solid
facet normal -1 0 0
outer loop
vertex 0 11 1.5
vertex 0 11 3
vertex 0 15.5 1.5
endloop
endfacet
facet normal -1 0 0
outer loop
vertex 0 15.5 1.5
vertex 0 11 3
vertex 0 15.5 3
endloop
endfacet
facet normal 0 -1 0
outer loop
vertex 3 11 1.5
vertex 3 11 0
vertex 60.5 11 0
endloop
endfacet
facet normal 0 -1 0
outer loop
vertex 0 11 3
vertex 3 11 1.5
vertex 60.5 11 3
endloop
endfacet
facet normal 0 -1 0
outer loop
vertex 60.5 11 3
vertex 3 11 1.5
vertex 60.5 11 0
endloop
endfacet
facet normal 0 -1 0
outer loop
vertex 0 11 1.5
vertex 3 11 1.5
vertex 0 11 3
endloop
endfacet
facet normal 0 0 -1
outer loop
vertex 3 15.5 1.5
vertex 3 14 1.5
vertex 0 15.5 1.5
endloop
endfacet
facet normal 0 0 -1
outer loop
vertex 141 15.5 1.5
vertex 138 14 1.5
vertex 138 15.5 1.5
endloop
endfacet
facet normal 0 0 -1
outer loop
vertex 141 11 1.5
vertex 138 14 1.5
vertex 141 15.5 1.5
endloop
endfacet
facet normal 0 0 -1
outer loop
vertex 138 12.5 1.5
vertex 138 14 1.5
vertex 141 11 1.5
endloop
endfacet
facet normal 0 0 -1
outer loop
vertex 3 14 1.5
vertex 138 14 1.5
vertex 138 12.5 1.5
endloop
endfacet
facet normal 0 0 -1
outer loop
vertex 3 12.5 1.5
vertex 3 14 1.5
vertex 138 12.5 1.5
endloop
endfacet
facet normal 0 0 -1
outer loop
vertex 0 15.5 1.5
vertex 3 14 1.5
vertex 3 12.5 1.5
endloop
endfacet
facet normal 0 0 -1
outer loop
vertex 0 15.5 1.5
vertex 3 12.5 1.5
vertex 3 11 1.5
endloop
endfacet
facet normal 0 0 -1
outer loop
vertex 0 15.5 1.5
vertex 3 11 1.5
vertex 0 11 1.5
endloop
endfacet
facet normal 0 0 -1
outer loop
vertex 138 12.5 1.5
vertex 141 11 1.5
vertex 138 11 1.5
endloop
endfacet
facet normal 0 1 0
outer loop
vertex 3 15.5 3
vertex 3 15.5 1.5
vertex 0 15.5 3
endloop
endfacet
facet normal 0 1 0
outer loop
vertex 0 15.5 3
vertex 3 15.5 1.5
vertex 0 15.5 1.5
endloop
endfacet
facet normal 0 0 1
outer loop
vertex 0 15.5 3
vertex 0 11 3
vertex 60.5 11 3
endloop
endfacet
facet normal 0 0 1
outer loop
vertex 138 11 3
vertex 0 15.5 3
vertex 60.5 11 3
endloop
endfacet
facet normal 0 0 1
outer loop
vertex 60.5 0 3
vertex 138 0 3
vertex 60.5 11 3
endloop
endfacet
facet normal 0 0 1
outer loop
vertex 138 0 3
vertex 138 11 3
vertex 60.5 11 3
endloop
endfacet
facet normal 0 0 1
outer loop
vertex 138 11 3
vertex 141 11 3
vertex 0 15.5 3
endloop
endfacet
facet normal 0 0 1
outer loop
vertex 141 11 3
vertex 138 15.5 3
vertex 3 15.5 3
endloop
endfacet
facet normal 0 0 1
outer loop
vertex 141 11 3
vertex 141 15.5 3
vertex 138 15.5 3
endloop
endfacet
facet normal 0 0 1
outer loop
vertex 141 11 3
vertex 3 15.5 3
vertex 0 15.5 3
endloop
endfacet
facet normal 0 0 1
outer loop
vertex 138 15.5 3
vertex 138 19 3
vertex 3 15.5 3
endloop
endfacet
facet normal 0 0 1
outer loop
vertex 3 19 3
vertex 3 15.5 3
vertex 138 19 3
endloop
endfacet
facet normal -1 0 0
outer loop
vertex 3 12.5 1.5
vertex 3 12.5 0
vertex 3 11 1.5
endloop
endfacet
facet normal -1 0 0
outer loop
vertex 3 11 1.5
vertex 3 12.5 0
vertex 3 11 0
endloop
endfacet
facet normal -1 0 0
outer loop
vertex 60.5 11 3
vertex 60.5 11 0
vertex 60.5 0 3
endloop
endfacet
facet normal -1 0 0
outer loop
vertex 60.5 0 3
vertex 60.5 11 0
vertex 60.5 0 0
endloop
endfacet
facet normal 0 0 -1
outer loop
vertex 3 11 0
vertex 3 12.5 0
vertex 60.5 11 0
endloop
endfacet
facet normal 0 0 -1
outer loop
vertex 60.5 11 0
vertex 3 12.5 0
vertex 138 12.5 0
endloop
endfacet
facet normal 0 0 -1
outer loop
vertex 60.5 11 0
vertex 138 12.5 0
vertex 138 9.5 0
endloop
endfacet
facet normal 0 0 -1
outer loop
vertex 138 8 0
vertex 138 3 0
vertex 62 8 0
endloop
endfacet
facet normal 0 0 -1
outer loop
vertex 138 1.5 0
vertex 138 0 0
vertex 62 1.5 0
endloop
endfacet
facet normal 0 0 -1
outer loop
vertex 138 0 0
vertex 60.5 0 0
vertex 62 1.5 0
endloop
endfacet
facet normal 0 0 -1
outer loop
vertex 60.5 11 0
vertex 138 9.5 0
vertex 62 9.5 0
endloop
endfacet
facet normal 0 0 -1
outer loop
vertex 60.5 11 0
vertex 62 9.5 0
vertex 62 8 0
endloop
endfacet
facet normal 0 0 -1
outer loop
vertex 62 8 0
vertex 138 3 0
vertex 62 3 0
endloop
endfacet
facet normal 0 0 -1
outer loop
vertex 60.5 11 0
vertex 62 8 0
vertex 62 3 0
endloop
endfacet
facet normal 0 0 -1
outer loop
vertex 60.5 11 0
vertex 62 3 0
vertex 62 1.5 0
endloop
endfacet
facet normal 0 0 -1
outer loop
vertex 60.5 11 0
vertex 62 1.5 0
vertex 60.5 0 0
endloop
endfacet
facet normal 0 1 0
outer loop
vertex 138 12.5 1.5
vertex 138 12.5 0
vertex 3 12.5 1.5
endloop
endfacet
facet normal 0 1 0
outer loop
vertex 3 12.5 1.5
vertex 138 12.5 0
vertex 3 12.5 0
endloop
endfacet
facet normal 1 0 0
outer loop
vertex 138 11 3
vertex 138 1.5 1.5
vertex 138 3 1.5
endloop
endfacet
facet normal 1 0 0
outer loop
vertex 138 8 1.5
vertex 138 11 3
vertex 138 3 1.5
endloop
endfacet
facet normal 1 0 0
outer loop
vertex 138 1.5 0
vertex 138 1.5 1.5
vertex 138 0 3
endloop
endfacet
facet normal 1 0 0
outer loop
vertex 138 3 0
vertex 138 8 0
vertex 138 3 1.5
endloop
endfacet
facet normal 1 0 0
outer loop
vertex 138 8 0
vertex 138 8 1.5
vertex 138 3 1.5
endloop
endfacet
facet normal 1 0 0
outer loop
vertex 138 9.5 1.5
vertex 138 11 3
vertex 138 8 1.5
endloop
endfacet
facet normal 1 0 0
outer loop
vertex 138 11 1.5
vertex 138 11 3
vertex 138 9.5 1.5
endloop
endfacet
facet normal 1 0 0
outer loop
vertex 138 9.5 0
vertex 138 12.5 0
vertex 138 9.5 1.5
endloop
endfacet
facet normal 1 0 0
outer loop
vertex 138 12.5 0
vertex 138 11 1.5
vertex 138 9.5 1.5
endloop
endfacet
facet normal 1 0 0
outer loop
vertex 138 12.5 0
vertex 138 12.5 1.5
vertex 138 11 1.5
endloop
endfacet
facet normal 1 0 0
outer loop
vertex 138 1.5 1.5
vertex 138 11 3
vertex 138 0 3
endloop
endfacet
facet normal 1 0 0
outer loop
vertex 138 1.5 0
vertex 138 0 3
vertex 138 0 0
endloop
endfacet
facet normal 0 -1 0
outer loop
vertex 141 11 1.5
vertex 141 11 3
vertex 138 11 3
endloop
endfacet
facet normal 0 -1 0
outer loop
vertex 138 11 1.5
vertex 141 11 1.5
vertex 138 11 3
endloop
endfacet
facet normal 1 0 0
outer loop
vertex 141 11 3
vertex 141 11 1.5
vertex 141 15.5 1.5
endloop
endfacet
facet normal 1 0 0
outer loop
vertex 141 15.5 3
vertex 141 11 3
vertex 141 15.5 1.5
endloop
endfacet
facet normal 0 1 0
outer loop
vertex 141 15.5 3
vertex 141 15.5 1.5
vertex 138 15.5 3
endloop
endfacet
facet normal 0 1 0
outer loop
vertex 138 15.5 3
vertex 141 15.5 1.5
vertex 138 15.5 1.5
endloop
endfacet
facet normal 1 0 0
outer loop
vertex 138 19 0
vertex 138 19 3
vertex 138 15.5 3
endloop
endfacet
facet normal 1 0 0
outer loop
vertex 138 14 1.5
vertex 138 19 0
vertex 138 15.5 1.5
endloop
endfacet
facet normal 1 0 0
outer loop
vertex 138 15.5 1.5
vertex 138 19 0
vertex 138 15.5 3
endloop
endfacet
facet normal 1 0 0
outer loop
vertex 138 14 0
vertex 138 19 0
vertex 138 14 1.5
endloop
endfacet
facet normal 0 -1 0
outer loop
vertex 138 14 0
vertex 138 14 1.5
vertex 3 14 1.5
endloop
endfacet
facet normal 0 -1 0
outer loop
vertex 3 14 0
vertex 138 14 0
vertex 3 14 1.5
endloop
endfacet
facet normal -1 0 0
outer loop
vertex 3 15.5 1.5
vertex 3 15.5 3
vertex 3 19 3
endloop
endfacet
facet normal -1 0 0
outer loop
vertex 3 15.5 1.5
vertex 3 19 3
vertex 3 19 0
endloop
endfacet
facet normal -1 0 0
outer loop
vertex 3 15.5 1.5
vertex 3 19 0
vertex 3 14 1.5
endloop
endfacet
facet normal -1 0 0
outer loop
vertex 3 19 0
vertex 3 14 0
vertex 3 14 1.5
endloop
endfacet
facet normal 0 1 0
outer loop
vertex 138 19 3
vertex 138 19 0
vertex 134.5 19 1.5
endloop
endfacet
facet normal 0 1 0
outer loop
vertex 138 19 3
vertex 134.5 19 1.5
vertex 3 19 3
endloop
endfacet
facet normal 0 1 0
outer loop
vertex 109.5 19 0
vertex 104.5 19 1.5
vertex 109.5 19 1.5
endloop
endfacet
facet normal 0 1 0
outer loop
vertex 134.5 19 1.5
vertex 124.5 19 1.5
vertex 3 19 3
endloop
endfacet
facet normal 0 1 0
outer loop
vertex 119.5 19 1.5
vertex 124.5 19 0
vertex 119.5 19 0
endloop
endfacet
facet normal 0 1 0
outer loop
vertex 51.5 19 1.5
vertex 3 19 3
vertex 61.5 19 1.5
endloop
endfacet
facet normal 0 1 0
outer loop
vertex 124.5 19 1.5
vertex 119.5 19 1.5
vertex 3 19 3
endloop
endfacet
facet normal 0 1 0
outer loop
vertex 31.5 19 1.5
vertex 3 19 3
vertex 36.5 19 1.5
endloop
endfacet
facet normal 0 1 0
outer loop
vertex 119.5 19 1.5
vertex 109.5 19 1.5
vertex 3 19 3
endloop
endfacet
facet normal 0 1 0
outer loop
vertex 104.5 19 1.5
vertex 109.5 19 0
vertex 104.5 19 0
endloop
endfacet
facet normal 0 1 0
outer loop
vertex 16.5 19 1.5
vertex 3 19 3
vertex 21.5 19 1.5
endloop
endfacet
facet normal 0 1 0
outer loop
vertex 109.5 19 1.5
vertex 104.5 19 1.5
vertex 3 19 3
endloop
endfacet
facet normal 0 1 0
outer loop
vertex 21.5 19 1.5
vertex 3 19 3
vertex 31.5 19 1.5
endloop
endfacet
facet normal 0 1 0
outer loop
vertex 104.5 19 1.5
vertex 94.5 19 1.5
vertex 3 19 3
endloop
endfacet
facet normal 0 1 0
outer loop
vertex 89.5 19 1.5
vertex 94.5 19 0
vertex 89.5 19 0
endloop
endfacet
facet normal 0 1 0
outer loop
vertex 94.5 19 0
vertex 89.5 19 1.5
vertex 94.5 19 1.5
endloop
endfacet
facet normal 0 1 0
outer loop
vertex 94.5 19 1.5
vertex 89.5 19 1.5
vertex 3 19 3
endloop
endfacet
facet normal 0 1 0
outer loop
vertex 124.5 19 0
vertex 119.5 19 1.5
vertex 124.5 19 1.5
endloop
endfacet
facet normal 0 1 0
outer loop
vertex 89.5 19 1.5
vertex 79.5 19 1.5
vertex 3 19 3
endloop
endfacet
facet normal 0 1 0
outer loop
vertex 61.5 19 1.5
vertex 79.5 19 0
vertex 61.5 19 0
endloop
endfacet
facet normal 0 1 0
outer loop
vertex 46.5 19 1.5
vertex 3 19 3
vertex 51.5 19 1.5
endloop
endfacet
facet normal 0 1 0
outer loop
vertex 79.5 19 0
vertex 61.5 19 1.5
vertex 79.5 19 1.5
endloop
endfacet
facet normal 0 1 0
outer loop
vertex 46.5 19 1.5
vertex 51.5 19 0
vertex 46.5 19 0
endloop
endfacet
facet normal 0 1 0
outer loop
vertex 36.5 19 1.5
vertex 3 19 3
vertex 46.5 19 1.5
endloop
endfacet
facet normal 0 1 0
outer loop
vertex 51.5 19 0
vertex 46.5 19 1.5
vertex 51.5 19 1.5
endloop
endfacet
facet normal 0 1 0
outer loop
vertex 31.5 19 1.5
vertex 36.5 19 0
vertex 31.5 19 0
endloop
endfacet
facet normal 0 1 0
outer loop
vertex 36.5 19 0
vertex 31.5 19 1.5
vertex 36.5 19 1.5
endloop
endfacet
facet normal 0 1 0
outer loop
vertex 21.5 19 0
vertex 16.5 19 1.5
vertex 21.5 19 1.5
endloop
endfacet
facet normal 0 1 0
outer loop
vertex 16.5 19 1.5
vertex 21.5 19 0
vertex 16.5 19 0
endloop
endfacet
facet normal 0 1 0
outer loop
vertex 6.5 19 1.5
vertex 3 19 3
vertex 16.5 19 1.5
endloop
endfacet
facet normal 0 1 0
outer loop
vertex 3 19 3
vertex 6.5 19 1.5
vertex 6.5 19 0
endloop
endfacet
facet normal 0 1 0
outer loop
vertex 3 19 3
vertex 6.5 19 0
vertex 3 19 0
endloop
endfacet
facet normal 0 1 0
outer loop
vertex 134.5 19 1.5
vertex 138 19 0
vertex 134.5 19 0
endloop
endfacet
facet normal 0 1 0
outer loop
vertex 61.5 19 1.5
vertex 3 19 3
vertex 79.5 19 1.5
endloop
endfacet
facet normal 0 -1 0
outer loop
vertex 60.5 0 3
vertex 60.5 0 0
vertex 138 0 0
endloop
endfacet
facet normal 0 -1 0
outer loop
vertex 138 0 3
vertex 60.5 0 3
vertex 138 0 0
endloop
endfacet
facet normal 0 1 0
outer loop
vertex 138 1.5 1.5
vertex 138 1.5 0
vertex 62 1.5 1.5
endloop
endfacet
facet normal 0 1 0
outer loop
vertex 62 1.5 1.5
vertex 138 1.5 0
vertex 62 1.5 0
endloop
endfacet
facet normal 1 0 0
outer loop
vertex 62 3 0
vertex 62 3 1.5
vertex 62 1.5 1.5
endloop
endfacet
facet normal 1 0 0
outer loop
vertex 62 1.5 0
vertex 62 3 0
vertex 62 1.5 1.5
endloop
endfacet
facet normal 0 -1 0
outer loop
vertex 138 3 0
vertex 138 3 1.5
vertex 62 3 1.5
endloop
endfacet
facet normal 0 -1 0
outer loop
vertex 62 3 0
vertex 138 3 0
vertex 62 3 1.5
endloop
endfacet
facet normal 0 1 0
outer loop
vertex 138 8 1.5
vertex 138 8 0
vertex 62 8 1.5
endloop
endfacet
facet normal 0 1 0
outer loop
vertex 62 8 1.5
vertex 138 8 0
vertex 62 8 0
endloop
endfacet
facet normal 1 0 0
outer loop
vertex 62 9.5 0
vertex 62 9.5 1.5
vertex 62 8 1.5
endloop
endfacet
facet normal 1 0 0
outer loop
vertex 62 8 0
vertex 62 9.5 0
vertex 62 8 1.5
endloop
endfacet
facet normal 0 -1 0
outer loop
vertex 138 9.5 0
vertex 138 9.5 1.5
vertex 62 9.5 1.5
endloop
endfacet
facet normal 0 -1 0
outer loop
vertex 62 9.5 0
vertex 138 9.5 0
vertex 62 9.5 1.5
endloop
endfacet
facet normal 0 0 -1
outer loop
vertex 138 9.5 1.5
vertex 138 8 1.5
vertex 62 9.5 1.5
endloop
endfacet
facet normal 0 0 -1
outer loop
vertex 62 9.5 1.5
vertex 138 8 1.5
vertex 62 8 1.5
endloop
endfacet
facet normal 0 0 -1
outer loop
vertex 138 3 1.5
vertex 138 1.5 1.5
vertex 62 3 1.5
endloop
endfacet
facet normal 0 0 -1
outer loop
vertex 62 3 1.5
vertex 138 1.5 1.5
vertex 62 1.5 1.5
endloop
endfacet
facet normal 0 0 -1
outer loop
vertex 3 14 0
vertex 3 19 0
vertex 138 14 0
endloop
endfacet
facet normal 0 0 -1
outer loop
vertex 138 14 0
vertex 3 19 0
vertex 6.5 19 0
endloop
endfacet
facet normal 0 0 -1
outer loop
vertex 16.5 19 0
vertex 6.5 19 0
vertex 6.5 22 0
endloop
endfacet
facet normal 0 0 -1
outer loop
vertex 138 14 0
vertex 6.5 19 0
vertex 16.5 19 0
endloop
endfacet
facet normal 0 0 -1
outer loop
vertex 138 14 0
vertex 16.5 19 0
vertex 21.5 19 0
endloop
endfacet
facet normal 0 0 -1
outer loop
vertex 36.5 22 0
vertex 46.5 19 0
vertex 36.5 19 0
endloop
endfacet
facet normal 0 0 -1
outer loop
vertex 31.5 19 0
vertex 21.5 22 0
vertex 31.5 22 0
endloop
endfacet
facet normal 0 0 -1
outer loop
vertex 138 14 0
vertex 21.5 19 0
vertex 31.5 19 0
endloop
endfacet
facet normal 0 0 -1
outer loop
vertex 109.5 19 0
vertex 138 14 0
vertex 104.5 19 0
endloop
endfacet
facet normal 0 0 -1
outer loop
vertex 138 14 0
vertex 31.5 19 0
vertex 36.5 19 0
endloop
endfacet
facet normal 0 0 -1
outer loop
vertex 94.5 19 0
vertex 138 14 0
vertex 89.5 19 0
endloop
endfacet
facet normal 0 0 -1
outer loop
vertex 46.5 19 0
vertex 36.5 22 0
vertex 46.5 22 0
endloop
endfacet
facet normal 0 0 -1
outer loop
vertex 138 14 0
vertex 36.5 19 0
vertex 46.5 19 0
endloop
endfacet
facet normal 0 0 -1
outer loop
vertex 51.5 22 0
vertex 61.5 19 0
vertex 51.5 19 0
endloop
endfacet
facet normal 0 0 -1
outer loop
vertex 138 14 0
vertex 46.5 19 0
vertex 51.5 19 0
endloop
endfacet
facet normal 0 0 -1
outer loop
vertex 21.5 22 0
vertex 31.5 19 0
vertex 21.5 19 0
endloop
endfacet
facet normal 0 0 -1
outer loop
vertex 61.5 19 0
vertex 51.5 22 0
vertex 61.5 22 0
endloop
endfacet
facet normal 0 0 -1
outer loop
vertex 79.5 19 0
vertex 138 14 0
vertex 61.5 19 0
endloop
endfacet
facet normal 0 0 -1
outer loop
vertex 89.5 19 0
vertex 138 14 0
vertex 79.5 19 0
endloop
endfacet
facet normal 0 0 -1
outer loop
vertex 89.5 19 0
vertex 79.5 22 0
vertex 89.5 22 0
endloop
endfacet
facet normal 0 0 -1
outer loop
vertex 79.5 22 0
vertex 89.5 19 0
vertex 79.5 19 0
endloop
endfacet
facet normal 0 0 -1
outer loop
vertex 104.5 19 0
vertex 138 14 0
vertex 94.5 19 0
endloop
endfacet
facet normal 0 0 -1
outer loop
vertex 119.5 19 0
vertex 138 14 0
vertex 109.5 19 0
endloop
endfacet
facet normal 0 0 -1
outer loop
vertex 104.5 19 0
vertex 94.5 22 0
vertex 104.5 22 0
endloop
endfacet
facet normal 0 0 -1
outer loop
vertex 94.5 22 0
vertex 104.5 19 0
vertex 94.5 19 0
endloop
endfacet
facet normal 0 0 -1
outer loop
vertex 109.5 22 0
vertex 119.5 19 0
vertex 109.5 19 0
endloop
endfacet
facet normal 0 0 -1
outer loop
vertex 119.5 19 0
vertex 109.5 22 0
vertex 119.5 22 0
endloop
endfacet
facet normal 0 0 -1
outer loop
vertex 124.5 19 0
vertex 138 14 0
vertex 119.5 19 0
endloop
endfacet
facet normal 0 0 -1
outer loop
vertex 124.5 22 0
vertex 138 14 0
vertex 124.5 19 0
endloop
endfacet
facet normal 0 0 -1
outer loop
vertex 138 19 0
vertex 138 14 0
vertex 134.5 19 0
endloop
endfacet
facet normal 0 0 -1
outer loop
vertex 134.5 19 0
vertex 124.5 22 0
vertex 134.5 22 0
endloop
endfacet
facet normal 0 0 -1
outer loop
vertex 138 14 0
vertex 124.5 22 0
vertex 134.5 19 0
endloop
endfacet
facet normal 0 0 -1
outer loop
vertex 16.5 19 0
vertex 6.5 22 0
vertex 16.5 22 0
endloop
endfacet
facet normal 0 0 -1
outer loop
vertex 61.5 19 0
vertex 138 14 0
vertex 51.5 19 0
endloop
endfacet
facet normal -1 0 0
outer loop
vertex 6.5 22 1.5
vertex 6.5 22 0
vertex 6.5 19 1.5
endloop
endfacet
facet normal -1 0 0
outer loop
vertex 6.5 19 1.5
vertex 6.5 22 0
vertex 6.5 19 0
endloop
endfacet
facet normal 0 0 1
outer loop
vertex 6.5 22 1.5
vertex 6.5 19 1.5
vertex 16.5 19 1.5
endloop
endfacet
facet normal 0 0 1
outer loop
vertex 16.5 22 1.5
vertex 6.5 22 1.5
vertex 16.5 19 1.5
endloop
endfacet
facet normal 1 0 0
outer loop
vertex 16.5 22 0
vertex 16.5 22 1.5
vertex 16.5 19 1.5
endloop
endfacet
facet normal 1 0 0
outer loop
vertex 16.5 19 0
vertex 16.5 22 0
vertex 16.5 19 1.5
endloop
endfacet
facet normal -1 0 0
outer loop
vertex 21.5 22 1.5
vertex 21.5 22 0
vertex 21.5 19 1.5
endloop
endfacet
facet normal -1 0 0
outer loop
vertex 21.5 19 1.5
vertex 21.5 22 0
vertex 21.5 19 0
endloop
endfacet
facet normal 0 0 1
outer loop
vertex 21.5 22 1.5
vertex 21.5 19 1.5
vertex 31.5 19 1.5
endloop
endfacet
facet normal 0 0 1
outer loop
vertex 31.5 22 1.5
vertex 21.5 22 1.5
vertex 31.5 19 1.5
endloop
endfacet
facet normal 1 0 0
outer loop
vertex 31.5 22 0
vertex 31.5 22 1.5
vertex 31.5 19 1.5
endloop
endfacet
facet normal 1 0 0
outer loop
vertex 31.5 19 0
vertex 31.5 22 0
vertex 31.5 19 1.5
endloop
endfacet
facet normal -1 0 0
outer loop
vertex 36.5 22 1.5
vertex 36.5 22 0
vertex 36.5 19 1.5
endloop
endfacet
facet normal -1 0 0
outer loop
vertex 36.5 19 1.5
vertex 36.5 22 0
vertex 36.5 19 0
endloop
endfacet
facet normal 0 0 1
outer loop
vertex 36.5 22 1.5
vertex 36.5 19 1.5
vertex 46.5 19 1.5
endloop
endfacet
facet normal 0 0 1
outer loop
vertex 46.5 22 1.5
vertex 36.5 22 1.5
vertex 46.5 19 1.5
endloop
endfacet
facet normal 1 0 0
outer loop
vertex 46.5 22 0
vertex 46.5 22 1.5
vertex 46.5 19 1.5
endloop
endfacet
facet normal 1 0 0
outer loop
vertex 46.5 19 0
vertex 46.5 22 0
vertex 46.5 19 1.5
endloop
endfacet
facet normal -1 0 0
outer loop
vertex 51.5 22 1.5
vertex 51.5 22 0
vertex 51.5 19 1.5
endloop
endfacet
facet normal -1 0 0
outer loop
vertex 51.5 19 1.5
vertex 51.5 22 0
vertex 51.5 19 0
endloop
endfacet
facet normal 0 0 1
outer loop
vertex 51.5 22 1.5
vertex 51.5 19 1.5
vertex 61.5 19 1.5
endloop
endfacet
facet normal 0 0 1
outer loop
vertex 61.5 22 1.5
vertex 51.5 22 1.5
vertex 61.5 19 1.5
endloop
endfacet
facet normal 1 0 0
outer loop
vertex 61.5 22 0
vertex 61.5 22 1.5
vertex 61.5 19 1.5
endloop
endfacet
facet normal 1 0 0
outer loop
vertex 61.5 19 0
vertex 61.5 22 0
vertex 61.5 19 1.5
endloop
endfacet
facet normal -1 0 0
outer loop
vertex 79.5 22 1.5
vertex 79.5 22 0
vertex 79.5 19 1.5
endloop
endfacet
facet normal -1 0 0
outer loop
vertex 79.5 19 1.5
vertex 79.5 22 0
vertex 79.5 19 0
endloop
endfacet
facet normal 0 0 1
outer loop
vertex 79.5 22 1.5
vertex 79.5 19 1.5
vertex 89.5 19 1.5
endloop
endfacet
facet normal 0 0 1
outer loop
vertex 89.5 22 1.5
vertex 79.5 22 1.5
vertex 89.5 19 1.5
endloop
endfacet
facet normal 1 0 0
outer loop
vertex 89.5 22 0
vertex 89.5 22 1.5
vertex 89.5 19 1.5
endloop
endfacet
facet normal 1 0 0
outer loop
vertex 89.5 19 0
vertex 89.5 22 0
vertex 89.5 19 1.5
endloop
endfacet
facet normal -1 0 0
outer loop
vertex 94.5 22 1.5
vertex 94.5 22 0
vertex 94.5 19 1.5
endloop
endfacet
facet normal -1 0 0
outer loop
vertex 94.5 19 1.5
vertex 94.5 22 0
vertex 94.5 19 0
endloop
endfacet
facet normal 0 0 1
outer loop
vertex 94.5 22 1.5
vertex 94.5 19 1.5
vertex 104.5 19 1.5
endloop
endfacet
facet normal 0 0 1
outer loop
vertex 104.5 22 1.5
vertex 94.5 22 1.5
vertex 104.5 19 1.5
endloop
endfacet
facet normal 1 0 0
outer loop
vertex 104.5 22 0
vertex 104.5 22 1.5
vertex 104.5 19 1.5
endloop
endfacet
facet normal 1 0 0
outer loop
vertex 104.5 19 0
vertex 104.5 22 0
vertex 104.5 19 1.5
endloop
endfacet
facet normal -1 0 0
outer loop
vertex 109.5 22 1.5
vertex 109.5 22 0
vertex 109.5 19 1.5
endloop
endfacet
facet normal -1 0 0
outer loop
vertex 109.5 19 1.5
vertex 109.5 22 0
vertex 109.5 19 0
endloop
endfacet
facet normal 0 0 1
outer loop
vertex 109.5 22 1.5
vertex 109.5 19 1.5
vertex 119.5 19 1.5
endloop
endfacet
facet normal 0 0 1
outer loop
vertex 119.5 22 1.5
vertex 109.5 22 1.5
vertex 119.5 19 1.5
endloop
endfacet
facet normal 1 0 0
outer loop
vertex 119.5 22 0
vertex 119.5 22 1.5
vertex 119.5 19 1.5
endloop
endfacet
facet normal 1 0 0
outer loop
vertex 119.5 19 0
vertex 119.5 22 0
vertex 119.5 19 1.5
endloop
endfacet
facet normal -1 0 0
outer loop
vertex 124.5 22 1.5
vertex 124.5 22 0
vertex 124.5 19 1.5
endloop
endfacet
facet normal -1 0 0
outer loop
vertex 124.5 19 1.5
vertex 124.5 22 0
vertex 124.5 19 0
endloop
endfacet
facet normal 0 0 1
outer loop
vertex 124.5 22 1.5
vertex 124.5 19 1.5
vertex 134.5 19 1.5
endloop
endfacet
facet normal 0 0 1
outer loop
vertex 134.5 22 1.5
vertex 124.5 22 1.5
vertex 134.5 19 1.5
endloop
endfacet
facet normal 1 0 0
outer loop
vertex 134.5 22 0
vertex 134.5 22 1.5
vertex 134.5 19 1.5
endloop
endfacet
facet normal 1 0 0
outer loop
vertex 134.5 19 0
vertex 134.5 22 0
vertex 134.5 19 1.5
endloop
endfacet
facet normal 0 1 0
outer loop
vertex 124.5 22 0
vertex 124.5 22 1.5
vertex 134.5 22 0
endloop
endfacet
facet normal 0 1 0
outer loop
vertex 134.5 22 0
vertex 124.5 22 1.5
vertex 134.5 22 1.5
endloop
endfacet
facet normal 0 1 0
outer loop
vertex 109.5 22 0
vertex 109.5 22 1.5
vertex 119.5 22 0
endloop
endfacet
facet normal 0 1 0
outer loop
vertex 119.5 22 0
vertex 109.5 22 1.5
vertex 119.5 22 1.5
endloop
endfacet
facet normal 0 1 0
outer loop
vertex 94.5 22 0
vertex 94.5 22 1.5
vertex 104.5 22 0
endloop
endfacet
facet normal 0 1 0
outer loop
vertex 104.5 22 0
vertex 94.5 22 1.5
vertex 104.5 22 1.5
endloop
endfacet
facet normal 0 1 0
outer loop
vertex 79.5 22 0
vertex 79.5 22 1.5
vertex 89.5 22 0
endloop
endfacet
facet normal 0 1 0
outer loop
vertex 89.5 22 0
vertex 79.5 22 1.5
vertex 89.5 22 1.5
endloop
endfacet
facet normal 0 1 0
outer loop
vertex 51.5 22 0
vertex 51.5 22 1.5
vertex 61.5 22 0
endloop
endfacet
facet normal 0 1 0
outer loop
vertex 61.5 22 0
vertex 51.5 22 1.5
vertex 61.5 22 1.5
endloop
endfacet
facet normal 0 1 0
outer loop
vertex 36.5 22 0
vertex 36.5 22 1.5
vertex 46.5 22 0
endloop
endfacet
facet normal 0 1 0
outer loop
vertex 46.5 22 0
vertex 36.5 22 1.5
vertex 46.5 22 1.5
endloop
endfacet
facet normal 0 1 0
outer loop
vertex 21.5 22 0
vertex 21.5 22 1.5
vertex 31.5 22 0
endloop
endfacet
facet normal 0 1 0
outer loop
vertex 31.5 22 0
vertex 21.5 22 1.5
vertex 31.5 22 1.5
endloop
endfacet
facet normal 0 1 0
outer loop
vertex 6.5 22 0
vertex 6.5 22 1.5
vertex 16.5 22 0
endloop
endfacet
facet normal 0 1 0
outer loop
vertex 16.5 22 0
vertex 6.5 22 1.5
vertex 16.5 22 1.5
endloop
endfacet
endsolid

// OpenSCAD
board = 138;
edge = 1.5;

depth = 2 * edge;
width = board + 2 * edge;

groove = 1.5;
faceSpace = 5;
mountSpace = 3;
pcbSpace = 5;

notchSpacing = 5;
notchWidth = 10;
notchHeight = 3;

height =
	edge +
	groove +
	faceSpace +
	groove +
	mountSpace +
	groove +
	pcbSpace +
	notchHeight;

faceTop = edge;
mountTop = faceTop + groove + faceSpace;
pcbTop = mountTop + groove + mountSpace;
baseTop = pcbTop + groove + pcbSpace;

notchCount = 8;
notchGap = board - notchCount * (notchSpacing + notchWidth);
notch1Left = edge + notchSpacing;
notch2Left = notch1Left + notchSpacing + notchWidth;
notch3Left = notch2Left + notchSpacing + notchWidth;
notch4Left = notch3Left + notchSpacing + notchWidth;
notch5Left = notch4Left + notchGap + notchWidth;
notch6Left = notch5Left + notchSpacing + notchWidth;
notch7Left = notch6Left + notchSpacing + notchWidth;
notch8Left = notch7Left + notchSpacing + notchWidth;

module hole(x, y, z, cx, cy, cz)
{
	translate([x, y, z]) cube([cx, cy, cz]);
}

module grooveHole(x, y)
{
	hole(2 * edge + x, y, 0, board - x, groove, edge);
}

module notchHole(x, cx)
{
	hole(x, baseTop, 0, cx, notchHeight, edge);
}

module sideNotch(x)
{
	hole(x, 0, 0, 2 * edge, height, edge);
	hole(x, 0, edge, 2 * edge, pcbTop - edge, edge);
	hole(x, pcbTop + 2 * edge, edge, 2 * edge, 2 * edge + groove, edge);
}

difference()
{
	cube([width, height, depth]);

	grooveHole(59, faceTop);
	grooveHole(59, mountTop);
	grooveHole(0, pcbTop);

	hole(0, baseTop, edge, width, notchHeight, edge);
	notchHole(0, notch1Left);
	notchHole(notch1Left + notchWidth, notchSpacing);
	notchHole(notch2Left + notchWidth, notchSpacing);
	notchHole(notch3Left + notchWidth, notchSpacing);
	notchHole(notch4Left + notchWidth, notchGap);
	notchHole(notch5Left + notchWidth, notchSpacing);
	notchHole(notch6Left + notchWidth, notchSpacing);
	notchHole(notch7Left + notchWidth, notchSpacing);
	notchHole(notch8Left + notchWidth, notchSpacing + edge);

	sideNotch(0);
	sideNotch(board);

	hole(1.5, 0, 0, 59, pcbTop - edge, depth);
}
